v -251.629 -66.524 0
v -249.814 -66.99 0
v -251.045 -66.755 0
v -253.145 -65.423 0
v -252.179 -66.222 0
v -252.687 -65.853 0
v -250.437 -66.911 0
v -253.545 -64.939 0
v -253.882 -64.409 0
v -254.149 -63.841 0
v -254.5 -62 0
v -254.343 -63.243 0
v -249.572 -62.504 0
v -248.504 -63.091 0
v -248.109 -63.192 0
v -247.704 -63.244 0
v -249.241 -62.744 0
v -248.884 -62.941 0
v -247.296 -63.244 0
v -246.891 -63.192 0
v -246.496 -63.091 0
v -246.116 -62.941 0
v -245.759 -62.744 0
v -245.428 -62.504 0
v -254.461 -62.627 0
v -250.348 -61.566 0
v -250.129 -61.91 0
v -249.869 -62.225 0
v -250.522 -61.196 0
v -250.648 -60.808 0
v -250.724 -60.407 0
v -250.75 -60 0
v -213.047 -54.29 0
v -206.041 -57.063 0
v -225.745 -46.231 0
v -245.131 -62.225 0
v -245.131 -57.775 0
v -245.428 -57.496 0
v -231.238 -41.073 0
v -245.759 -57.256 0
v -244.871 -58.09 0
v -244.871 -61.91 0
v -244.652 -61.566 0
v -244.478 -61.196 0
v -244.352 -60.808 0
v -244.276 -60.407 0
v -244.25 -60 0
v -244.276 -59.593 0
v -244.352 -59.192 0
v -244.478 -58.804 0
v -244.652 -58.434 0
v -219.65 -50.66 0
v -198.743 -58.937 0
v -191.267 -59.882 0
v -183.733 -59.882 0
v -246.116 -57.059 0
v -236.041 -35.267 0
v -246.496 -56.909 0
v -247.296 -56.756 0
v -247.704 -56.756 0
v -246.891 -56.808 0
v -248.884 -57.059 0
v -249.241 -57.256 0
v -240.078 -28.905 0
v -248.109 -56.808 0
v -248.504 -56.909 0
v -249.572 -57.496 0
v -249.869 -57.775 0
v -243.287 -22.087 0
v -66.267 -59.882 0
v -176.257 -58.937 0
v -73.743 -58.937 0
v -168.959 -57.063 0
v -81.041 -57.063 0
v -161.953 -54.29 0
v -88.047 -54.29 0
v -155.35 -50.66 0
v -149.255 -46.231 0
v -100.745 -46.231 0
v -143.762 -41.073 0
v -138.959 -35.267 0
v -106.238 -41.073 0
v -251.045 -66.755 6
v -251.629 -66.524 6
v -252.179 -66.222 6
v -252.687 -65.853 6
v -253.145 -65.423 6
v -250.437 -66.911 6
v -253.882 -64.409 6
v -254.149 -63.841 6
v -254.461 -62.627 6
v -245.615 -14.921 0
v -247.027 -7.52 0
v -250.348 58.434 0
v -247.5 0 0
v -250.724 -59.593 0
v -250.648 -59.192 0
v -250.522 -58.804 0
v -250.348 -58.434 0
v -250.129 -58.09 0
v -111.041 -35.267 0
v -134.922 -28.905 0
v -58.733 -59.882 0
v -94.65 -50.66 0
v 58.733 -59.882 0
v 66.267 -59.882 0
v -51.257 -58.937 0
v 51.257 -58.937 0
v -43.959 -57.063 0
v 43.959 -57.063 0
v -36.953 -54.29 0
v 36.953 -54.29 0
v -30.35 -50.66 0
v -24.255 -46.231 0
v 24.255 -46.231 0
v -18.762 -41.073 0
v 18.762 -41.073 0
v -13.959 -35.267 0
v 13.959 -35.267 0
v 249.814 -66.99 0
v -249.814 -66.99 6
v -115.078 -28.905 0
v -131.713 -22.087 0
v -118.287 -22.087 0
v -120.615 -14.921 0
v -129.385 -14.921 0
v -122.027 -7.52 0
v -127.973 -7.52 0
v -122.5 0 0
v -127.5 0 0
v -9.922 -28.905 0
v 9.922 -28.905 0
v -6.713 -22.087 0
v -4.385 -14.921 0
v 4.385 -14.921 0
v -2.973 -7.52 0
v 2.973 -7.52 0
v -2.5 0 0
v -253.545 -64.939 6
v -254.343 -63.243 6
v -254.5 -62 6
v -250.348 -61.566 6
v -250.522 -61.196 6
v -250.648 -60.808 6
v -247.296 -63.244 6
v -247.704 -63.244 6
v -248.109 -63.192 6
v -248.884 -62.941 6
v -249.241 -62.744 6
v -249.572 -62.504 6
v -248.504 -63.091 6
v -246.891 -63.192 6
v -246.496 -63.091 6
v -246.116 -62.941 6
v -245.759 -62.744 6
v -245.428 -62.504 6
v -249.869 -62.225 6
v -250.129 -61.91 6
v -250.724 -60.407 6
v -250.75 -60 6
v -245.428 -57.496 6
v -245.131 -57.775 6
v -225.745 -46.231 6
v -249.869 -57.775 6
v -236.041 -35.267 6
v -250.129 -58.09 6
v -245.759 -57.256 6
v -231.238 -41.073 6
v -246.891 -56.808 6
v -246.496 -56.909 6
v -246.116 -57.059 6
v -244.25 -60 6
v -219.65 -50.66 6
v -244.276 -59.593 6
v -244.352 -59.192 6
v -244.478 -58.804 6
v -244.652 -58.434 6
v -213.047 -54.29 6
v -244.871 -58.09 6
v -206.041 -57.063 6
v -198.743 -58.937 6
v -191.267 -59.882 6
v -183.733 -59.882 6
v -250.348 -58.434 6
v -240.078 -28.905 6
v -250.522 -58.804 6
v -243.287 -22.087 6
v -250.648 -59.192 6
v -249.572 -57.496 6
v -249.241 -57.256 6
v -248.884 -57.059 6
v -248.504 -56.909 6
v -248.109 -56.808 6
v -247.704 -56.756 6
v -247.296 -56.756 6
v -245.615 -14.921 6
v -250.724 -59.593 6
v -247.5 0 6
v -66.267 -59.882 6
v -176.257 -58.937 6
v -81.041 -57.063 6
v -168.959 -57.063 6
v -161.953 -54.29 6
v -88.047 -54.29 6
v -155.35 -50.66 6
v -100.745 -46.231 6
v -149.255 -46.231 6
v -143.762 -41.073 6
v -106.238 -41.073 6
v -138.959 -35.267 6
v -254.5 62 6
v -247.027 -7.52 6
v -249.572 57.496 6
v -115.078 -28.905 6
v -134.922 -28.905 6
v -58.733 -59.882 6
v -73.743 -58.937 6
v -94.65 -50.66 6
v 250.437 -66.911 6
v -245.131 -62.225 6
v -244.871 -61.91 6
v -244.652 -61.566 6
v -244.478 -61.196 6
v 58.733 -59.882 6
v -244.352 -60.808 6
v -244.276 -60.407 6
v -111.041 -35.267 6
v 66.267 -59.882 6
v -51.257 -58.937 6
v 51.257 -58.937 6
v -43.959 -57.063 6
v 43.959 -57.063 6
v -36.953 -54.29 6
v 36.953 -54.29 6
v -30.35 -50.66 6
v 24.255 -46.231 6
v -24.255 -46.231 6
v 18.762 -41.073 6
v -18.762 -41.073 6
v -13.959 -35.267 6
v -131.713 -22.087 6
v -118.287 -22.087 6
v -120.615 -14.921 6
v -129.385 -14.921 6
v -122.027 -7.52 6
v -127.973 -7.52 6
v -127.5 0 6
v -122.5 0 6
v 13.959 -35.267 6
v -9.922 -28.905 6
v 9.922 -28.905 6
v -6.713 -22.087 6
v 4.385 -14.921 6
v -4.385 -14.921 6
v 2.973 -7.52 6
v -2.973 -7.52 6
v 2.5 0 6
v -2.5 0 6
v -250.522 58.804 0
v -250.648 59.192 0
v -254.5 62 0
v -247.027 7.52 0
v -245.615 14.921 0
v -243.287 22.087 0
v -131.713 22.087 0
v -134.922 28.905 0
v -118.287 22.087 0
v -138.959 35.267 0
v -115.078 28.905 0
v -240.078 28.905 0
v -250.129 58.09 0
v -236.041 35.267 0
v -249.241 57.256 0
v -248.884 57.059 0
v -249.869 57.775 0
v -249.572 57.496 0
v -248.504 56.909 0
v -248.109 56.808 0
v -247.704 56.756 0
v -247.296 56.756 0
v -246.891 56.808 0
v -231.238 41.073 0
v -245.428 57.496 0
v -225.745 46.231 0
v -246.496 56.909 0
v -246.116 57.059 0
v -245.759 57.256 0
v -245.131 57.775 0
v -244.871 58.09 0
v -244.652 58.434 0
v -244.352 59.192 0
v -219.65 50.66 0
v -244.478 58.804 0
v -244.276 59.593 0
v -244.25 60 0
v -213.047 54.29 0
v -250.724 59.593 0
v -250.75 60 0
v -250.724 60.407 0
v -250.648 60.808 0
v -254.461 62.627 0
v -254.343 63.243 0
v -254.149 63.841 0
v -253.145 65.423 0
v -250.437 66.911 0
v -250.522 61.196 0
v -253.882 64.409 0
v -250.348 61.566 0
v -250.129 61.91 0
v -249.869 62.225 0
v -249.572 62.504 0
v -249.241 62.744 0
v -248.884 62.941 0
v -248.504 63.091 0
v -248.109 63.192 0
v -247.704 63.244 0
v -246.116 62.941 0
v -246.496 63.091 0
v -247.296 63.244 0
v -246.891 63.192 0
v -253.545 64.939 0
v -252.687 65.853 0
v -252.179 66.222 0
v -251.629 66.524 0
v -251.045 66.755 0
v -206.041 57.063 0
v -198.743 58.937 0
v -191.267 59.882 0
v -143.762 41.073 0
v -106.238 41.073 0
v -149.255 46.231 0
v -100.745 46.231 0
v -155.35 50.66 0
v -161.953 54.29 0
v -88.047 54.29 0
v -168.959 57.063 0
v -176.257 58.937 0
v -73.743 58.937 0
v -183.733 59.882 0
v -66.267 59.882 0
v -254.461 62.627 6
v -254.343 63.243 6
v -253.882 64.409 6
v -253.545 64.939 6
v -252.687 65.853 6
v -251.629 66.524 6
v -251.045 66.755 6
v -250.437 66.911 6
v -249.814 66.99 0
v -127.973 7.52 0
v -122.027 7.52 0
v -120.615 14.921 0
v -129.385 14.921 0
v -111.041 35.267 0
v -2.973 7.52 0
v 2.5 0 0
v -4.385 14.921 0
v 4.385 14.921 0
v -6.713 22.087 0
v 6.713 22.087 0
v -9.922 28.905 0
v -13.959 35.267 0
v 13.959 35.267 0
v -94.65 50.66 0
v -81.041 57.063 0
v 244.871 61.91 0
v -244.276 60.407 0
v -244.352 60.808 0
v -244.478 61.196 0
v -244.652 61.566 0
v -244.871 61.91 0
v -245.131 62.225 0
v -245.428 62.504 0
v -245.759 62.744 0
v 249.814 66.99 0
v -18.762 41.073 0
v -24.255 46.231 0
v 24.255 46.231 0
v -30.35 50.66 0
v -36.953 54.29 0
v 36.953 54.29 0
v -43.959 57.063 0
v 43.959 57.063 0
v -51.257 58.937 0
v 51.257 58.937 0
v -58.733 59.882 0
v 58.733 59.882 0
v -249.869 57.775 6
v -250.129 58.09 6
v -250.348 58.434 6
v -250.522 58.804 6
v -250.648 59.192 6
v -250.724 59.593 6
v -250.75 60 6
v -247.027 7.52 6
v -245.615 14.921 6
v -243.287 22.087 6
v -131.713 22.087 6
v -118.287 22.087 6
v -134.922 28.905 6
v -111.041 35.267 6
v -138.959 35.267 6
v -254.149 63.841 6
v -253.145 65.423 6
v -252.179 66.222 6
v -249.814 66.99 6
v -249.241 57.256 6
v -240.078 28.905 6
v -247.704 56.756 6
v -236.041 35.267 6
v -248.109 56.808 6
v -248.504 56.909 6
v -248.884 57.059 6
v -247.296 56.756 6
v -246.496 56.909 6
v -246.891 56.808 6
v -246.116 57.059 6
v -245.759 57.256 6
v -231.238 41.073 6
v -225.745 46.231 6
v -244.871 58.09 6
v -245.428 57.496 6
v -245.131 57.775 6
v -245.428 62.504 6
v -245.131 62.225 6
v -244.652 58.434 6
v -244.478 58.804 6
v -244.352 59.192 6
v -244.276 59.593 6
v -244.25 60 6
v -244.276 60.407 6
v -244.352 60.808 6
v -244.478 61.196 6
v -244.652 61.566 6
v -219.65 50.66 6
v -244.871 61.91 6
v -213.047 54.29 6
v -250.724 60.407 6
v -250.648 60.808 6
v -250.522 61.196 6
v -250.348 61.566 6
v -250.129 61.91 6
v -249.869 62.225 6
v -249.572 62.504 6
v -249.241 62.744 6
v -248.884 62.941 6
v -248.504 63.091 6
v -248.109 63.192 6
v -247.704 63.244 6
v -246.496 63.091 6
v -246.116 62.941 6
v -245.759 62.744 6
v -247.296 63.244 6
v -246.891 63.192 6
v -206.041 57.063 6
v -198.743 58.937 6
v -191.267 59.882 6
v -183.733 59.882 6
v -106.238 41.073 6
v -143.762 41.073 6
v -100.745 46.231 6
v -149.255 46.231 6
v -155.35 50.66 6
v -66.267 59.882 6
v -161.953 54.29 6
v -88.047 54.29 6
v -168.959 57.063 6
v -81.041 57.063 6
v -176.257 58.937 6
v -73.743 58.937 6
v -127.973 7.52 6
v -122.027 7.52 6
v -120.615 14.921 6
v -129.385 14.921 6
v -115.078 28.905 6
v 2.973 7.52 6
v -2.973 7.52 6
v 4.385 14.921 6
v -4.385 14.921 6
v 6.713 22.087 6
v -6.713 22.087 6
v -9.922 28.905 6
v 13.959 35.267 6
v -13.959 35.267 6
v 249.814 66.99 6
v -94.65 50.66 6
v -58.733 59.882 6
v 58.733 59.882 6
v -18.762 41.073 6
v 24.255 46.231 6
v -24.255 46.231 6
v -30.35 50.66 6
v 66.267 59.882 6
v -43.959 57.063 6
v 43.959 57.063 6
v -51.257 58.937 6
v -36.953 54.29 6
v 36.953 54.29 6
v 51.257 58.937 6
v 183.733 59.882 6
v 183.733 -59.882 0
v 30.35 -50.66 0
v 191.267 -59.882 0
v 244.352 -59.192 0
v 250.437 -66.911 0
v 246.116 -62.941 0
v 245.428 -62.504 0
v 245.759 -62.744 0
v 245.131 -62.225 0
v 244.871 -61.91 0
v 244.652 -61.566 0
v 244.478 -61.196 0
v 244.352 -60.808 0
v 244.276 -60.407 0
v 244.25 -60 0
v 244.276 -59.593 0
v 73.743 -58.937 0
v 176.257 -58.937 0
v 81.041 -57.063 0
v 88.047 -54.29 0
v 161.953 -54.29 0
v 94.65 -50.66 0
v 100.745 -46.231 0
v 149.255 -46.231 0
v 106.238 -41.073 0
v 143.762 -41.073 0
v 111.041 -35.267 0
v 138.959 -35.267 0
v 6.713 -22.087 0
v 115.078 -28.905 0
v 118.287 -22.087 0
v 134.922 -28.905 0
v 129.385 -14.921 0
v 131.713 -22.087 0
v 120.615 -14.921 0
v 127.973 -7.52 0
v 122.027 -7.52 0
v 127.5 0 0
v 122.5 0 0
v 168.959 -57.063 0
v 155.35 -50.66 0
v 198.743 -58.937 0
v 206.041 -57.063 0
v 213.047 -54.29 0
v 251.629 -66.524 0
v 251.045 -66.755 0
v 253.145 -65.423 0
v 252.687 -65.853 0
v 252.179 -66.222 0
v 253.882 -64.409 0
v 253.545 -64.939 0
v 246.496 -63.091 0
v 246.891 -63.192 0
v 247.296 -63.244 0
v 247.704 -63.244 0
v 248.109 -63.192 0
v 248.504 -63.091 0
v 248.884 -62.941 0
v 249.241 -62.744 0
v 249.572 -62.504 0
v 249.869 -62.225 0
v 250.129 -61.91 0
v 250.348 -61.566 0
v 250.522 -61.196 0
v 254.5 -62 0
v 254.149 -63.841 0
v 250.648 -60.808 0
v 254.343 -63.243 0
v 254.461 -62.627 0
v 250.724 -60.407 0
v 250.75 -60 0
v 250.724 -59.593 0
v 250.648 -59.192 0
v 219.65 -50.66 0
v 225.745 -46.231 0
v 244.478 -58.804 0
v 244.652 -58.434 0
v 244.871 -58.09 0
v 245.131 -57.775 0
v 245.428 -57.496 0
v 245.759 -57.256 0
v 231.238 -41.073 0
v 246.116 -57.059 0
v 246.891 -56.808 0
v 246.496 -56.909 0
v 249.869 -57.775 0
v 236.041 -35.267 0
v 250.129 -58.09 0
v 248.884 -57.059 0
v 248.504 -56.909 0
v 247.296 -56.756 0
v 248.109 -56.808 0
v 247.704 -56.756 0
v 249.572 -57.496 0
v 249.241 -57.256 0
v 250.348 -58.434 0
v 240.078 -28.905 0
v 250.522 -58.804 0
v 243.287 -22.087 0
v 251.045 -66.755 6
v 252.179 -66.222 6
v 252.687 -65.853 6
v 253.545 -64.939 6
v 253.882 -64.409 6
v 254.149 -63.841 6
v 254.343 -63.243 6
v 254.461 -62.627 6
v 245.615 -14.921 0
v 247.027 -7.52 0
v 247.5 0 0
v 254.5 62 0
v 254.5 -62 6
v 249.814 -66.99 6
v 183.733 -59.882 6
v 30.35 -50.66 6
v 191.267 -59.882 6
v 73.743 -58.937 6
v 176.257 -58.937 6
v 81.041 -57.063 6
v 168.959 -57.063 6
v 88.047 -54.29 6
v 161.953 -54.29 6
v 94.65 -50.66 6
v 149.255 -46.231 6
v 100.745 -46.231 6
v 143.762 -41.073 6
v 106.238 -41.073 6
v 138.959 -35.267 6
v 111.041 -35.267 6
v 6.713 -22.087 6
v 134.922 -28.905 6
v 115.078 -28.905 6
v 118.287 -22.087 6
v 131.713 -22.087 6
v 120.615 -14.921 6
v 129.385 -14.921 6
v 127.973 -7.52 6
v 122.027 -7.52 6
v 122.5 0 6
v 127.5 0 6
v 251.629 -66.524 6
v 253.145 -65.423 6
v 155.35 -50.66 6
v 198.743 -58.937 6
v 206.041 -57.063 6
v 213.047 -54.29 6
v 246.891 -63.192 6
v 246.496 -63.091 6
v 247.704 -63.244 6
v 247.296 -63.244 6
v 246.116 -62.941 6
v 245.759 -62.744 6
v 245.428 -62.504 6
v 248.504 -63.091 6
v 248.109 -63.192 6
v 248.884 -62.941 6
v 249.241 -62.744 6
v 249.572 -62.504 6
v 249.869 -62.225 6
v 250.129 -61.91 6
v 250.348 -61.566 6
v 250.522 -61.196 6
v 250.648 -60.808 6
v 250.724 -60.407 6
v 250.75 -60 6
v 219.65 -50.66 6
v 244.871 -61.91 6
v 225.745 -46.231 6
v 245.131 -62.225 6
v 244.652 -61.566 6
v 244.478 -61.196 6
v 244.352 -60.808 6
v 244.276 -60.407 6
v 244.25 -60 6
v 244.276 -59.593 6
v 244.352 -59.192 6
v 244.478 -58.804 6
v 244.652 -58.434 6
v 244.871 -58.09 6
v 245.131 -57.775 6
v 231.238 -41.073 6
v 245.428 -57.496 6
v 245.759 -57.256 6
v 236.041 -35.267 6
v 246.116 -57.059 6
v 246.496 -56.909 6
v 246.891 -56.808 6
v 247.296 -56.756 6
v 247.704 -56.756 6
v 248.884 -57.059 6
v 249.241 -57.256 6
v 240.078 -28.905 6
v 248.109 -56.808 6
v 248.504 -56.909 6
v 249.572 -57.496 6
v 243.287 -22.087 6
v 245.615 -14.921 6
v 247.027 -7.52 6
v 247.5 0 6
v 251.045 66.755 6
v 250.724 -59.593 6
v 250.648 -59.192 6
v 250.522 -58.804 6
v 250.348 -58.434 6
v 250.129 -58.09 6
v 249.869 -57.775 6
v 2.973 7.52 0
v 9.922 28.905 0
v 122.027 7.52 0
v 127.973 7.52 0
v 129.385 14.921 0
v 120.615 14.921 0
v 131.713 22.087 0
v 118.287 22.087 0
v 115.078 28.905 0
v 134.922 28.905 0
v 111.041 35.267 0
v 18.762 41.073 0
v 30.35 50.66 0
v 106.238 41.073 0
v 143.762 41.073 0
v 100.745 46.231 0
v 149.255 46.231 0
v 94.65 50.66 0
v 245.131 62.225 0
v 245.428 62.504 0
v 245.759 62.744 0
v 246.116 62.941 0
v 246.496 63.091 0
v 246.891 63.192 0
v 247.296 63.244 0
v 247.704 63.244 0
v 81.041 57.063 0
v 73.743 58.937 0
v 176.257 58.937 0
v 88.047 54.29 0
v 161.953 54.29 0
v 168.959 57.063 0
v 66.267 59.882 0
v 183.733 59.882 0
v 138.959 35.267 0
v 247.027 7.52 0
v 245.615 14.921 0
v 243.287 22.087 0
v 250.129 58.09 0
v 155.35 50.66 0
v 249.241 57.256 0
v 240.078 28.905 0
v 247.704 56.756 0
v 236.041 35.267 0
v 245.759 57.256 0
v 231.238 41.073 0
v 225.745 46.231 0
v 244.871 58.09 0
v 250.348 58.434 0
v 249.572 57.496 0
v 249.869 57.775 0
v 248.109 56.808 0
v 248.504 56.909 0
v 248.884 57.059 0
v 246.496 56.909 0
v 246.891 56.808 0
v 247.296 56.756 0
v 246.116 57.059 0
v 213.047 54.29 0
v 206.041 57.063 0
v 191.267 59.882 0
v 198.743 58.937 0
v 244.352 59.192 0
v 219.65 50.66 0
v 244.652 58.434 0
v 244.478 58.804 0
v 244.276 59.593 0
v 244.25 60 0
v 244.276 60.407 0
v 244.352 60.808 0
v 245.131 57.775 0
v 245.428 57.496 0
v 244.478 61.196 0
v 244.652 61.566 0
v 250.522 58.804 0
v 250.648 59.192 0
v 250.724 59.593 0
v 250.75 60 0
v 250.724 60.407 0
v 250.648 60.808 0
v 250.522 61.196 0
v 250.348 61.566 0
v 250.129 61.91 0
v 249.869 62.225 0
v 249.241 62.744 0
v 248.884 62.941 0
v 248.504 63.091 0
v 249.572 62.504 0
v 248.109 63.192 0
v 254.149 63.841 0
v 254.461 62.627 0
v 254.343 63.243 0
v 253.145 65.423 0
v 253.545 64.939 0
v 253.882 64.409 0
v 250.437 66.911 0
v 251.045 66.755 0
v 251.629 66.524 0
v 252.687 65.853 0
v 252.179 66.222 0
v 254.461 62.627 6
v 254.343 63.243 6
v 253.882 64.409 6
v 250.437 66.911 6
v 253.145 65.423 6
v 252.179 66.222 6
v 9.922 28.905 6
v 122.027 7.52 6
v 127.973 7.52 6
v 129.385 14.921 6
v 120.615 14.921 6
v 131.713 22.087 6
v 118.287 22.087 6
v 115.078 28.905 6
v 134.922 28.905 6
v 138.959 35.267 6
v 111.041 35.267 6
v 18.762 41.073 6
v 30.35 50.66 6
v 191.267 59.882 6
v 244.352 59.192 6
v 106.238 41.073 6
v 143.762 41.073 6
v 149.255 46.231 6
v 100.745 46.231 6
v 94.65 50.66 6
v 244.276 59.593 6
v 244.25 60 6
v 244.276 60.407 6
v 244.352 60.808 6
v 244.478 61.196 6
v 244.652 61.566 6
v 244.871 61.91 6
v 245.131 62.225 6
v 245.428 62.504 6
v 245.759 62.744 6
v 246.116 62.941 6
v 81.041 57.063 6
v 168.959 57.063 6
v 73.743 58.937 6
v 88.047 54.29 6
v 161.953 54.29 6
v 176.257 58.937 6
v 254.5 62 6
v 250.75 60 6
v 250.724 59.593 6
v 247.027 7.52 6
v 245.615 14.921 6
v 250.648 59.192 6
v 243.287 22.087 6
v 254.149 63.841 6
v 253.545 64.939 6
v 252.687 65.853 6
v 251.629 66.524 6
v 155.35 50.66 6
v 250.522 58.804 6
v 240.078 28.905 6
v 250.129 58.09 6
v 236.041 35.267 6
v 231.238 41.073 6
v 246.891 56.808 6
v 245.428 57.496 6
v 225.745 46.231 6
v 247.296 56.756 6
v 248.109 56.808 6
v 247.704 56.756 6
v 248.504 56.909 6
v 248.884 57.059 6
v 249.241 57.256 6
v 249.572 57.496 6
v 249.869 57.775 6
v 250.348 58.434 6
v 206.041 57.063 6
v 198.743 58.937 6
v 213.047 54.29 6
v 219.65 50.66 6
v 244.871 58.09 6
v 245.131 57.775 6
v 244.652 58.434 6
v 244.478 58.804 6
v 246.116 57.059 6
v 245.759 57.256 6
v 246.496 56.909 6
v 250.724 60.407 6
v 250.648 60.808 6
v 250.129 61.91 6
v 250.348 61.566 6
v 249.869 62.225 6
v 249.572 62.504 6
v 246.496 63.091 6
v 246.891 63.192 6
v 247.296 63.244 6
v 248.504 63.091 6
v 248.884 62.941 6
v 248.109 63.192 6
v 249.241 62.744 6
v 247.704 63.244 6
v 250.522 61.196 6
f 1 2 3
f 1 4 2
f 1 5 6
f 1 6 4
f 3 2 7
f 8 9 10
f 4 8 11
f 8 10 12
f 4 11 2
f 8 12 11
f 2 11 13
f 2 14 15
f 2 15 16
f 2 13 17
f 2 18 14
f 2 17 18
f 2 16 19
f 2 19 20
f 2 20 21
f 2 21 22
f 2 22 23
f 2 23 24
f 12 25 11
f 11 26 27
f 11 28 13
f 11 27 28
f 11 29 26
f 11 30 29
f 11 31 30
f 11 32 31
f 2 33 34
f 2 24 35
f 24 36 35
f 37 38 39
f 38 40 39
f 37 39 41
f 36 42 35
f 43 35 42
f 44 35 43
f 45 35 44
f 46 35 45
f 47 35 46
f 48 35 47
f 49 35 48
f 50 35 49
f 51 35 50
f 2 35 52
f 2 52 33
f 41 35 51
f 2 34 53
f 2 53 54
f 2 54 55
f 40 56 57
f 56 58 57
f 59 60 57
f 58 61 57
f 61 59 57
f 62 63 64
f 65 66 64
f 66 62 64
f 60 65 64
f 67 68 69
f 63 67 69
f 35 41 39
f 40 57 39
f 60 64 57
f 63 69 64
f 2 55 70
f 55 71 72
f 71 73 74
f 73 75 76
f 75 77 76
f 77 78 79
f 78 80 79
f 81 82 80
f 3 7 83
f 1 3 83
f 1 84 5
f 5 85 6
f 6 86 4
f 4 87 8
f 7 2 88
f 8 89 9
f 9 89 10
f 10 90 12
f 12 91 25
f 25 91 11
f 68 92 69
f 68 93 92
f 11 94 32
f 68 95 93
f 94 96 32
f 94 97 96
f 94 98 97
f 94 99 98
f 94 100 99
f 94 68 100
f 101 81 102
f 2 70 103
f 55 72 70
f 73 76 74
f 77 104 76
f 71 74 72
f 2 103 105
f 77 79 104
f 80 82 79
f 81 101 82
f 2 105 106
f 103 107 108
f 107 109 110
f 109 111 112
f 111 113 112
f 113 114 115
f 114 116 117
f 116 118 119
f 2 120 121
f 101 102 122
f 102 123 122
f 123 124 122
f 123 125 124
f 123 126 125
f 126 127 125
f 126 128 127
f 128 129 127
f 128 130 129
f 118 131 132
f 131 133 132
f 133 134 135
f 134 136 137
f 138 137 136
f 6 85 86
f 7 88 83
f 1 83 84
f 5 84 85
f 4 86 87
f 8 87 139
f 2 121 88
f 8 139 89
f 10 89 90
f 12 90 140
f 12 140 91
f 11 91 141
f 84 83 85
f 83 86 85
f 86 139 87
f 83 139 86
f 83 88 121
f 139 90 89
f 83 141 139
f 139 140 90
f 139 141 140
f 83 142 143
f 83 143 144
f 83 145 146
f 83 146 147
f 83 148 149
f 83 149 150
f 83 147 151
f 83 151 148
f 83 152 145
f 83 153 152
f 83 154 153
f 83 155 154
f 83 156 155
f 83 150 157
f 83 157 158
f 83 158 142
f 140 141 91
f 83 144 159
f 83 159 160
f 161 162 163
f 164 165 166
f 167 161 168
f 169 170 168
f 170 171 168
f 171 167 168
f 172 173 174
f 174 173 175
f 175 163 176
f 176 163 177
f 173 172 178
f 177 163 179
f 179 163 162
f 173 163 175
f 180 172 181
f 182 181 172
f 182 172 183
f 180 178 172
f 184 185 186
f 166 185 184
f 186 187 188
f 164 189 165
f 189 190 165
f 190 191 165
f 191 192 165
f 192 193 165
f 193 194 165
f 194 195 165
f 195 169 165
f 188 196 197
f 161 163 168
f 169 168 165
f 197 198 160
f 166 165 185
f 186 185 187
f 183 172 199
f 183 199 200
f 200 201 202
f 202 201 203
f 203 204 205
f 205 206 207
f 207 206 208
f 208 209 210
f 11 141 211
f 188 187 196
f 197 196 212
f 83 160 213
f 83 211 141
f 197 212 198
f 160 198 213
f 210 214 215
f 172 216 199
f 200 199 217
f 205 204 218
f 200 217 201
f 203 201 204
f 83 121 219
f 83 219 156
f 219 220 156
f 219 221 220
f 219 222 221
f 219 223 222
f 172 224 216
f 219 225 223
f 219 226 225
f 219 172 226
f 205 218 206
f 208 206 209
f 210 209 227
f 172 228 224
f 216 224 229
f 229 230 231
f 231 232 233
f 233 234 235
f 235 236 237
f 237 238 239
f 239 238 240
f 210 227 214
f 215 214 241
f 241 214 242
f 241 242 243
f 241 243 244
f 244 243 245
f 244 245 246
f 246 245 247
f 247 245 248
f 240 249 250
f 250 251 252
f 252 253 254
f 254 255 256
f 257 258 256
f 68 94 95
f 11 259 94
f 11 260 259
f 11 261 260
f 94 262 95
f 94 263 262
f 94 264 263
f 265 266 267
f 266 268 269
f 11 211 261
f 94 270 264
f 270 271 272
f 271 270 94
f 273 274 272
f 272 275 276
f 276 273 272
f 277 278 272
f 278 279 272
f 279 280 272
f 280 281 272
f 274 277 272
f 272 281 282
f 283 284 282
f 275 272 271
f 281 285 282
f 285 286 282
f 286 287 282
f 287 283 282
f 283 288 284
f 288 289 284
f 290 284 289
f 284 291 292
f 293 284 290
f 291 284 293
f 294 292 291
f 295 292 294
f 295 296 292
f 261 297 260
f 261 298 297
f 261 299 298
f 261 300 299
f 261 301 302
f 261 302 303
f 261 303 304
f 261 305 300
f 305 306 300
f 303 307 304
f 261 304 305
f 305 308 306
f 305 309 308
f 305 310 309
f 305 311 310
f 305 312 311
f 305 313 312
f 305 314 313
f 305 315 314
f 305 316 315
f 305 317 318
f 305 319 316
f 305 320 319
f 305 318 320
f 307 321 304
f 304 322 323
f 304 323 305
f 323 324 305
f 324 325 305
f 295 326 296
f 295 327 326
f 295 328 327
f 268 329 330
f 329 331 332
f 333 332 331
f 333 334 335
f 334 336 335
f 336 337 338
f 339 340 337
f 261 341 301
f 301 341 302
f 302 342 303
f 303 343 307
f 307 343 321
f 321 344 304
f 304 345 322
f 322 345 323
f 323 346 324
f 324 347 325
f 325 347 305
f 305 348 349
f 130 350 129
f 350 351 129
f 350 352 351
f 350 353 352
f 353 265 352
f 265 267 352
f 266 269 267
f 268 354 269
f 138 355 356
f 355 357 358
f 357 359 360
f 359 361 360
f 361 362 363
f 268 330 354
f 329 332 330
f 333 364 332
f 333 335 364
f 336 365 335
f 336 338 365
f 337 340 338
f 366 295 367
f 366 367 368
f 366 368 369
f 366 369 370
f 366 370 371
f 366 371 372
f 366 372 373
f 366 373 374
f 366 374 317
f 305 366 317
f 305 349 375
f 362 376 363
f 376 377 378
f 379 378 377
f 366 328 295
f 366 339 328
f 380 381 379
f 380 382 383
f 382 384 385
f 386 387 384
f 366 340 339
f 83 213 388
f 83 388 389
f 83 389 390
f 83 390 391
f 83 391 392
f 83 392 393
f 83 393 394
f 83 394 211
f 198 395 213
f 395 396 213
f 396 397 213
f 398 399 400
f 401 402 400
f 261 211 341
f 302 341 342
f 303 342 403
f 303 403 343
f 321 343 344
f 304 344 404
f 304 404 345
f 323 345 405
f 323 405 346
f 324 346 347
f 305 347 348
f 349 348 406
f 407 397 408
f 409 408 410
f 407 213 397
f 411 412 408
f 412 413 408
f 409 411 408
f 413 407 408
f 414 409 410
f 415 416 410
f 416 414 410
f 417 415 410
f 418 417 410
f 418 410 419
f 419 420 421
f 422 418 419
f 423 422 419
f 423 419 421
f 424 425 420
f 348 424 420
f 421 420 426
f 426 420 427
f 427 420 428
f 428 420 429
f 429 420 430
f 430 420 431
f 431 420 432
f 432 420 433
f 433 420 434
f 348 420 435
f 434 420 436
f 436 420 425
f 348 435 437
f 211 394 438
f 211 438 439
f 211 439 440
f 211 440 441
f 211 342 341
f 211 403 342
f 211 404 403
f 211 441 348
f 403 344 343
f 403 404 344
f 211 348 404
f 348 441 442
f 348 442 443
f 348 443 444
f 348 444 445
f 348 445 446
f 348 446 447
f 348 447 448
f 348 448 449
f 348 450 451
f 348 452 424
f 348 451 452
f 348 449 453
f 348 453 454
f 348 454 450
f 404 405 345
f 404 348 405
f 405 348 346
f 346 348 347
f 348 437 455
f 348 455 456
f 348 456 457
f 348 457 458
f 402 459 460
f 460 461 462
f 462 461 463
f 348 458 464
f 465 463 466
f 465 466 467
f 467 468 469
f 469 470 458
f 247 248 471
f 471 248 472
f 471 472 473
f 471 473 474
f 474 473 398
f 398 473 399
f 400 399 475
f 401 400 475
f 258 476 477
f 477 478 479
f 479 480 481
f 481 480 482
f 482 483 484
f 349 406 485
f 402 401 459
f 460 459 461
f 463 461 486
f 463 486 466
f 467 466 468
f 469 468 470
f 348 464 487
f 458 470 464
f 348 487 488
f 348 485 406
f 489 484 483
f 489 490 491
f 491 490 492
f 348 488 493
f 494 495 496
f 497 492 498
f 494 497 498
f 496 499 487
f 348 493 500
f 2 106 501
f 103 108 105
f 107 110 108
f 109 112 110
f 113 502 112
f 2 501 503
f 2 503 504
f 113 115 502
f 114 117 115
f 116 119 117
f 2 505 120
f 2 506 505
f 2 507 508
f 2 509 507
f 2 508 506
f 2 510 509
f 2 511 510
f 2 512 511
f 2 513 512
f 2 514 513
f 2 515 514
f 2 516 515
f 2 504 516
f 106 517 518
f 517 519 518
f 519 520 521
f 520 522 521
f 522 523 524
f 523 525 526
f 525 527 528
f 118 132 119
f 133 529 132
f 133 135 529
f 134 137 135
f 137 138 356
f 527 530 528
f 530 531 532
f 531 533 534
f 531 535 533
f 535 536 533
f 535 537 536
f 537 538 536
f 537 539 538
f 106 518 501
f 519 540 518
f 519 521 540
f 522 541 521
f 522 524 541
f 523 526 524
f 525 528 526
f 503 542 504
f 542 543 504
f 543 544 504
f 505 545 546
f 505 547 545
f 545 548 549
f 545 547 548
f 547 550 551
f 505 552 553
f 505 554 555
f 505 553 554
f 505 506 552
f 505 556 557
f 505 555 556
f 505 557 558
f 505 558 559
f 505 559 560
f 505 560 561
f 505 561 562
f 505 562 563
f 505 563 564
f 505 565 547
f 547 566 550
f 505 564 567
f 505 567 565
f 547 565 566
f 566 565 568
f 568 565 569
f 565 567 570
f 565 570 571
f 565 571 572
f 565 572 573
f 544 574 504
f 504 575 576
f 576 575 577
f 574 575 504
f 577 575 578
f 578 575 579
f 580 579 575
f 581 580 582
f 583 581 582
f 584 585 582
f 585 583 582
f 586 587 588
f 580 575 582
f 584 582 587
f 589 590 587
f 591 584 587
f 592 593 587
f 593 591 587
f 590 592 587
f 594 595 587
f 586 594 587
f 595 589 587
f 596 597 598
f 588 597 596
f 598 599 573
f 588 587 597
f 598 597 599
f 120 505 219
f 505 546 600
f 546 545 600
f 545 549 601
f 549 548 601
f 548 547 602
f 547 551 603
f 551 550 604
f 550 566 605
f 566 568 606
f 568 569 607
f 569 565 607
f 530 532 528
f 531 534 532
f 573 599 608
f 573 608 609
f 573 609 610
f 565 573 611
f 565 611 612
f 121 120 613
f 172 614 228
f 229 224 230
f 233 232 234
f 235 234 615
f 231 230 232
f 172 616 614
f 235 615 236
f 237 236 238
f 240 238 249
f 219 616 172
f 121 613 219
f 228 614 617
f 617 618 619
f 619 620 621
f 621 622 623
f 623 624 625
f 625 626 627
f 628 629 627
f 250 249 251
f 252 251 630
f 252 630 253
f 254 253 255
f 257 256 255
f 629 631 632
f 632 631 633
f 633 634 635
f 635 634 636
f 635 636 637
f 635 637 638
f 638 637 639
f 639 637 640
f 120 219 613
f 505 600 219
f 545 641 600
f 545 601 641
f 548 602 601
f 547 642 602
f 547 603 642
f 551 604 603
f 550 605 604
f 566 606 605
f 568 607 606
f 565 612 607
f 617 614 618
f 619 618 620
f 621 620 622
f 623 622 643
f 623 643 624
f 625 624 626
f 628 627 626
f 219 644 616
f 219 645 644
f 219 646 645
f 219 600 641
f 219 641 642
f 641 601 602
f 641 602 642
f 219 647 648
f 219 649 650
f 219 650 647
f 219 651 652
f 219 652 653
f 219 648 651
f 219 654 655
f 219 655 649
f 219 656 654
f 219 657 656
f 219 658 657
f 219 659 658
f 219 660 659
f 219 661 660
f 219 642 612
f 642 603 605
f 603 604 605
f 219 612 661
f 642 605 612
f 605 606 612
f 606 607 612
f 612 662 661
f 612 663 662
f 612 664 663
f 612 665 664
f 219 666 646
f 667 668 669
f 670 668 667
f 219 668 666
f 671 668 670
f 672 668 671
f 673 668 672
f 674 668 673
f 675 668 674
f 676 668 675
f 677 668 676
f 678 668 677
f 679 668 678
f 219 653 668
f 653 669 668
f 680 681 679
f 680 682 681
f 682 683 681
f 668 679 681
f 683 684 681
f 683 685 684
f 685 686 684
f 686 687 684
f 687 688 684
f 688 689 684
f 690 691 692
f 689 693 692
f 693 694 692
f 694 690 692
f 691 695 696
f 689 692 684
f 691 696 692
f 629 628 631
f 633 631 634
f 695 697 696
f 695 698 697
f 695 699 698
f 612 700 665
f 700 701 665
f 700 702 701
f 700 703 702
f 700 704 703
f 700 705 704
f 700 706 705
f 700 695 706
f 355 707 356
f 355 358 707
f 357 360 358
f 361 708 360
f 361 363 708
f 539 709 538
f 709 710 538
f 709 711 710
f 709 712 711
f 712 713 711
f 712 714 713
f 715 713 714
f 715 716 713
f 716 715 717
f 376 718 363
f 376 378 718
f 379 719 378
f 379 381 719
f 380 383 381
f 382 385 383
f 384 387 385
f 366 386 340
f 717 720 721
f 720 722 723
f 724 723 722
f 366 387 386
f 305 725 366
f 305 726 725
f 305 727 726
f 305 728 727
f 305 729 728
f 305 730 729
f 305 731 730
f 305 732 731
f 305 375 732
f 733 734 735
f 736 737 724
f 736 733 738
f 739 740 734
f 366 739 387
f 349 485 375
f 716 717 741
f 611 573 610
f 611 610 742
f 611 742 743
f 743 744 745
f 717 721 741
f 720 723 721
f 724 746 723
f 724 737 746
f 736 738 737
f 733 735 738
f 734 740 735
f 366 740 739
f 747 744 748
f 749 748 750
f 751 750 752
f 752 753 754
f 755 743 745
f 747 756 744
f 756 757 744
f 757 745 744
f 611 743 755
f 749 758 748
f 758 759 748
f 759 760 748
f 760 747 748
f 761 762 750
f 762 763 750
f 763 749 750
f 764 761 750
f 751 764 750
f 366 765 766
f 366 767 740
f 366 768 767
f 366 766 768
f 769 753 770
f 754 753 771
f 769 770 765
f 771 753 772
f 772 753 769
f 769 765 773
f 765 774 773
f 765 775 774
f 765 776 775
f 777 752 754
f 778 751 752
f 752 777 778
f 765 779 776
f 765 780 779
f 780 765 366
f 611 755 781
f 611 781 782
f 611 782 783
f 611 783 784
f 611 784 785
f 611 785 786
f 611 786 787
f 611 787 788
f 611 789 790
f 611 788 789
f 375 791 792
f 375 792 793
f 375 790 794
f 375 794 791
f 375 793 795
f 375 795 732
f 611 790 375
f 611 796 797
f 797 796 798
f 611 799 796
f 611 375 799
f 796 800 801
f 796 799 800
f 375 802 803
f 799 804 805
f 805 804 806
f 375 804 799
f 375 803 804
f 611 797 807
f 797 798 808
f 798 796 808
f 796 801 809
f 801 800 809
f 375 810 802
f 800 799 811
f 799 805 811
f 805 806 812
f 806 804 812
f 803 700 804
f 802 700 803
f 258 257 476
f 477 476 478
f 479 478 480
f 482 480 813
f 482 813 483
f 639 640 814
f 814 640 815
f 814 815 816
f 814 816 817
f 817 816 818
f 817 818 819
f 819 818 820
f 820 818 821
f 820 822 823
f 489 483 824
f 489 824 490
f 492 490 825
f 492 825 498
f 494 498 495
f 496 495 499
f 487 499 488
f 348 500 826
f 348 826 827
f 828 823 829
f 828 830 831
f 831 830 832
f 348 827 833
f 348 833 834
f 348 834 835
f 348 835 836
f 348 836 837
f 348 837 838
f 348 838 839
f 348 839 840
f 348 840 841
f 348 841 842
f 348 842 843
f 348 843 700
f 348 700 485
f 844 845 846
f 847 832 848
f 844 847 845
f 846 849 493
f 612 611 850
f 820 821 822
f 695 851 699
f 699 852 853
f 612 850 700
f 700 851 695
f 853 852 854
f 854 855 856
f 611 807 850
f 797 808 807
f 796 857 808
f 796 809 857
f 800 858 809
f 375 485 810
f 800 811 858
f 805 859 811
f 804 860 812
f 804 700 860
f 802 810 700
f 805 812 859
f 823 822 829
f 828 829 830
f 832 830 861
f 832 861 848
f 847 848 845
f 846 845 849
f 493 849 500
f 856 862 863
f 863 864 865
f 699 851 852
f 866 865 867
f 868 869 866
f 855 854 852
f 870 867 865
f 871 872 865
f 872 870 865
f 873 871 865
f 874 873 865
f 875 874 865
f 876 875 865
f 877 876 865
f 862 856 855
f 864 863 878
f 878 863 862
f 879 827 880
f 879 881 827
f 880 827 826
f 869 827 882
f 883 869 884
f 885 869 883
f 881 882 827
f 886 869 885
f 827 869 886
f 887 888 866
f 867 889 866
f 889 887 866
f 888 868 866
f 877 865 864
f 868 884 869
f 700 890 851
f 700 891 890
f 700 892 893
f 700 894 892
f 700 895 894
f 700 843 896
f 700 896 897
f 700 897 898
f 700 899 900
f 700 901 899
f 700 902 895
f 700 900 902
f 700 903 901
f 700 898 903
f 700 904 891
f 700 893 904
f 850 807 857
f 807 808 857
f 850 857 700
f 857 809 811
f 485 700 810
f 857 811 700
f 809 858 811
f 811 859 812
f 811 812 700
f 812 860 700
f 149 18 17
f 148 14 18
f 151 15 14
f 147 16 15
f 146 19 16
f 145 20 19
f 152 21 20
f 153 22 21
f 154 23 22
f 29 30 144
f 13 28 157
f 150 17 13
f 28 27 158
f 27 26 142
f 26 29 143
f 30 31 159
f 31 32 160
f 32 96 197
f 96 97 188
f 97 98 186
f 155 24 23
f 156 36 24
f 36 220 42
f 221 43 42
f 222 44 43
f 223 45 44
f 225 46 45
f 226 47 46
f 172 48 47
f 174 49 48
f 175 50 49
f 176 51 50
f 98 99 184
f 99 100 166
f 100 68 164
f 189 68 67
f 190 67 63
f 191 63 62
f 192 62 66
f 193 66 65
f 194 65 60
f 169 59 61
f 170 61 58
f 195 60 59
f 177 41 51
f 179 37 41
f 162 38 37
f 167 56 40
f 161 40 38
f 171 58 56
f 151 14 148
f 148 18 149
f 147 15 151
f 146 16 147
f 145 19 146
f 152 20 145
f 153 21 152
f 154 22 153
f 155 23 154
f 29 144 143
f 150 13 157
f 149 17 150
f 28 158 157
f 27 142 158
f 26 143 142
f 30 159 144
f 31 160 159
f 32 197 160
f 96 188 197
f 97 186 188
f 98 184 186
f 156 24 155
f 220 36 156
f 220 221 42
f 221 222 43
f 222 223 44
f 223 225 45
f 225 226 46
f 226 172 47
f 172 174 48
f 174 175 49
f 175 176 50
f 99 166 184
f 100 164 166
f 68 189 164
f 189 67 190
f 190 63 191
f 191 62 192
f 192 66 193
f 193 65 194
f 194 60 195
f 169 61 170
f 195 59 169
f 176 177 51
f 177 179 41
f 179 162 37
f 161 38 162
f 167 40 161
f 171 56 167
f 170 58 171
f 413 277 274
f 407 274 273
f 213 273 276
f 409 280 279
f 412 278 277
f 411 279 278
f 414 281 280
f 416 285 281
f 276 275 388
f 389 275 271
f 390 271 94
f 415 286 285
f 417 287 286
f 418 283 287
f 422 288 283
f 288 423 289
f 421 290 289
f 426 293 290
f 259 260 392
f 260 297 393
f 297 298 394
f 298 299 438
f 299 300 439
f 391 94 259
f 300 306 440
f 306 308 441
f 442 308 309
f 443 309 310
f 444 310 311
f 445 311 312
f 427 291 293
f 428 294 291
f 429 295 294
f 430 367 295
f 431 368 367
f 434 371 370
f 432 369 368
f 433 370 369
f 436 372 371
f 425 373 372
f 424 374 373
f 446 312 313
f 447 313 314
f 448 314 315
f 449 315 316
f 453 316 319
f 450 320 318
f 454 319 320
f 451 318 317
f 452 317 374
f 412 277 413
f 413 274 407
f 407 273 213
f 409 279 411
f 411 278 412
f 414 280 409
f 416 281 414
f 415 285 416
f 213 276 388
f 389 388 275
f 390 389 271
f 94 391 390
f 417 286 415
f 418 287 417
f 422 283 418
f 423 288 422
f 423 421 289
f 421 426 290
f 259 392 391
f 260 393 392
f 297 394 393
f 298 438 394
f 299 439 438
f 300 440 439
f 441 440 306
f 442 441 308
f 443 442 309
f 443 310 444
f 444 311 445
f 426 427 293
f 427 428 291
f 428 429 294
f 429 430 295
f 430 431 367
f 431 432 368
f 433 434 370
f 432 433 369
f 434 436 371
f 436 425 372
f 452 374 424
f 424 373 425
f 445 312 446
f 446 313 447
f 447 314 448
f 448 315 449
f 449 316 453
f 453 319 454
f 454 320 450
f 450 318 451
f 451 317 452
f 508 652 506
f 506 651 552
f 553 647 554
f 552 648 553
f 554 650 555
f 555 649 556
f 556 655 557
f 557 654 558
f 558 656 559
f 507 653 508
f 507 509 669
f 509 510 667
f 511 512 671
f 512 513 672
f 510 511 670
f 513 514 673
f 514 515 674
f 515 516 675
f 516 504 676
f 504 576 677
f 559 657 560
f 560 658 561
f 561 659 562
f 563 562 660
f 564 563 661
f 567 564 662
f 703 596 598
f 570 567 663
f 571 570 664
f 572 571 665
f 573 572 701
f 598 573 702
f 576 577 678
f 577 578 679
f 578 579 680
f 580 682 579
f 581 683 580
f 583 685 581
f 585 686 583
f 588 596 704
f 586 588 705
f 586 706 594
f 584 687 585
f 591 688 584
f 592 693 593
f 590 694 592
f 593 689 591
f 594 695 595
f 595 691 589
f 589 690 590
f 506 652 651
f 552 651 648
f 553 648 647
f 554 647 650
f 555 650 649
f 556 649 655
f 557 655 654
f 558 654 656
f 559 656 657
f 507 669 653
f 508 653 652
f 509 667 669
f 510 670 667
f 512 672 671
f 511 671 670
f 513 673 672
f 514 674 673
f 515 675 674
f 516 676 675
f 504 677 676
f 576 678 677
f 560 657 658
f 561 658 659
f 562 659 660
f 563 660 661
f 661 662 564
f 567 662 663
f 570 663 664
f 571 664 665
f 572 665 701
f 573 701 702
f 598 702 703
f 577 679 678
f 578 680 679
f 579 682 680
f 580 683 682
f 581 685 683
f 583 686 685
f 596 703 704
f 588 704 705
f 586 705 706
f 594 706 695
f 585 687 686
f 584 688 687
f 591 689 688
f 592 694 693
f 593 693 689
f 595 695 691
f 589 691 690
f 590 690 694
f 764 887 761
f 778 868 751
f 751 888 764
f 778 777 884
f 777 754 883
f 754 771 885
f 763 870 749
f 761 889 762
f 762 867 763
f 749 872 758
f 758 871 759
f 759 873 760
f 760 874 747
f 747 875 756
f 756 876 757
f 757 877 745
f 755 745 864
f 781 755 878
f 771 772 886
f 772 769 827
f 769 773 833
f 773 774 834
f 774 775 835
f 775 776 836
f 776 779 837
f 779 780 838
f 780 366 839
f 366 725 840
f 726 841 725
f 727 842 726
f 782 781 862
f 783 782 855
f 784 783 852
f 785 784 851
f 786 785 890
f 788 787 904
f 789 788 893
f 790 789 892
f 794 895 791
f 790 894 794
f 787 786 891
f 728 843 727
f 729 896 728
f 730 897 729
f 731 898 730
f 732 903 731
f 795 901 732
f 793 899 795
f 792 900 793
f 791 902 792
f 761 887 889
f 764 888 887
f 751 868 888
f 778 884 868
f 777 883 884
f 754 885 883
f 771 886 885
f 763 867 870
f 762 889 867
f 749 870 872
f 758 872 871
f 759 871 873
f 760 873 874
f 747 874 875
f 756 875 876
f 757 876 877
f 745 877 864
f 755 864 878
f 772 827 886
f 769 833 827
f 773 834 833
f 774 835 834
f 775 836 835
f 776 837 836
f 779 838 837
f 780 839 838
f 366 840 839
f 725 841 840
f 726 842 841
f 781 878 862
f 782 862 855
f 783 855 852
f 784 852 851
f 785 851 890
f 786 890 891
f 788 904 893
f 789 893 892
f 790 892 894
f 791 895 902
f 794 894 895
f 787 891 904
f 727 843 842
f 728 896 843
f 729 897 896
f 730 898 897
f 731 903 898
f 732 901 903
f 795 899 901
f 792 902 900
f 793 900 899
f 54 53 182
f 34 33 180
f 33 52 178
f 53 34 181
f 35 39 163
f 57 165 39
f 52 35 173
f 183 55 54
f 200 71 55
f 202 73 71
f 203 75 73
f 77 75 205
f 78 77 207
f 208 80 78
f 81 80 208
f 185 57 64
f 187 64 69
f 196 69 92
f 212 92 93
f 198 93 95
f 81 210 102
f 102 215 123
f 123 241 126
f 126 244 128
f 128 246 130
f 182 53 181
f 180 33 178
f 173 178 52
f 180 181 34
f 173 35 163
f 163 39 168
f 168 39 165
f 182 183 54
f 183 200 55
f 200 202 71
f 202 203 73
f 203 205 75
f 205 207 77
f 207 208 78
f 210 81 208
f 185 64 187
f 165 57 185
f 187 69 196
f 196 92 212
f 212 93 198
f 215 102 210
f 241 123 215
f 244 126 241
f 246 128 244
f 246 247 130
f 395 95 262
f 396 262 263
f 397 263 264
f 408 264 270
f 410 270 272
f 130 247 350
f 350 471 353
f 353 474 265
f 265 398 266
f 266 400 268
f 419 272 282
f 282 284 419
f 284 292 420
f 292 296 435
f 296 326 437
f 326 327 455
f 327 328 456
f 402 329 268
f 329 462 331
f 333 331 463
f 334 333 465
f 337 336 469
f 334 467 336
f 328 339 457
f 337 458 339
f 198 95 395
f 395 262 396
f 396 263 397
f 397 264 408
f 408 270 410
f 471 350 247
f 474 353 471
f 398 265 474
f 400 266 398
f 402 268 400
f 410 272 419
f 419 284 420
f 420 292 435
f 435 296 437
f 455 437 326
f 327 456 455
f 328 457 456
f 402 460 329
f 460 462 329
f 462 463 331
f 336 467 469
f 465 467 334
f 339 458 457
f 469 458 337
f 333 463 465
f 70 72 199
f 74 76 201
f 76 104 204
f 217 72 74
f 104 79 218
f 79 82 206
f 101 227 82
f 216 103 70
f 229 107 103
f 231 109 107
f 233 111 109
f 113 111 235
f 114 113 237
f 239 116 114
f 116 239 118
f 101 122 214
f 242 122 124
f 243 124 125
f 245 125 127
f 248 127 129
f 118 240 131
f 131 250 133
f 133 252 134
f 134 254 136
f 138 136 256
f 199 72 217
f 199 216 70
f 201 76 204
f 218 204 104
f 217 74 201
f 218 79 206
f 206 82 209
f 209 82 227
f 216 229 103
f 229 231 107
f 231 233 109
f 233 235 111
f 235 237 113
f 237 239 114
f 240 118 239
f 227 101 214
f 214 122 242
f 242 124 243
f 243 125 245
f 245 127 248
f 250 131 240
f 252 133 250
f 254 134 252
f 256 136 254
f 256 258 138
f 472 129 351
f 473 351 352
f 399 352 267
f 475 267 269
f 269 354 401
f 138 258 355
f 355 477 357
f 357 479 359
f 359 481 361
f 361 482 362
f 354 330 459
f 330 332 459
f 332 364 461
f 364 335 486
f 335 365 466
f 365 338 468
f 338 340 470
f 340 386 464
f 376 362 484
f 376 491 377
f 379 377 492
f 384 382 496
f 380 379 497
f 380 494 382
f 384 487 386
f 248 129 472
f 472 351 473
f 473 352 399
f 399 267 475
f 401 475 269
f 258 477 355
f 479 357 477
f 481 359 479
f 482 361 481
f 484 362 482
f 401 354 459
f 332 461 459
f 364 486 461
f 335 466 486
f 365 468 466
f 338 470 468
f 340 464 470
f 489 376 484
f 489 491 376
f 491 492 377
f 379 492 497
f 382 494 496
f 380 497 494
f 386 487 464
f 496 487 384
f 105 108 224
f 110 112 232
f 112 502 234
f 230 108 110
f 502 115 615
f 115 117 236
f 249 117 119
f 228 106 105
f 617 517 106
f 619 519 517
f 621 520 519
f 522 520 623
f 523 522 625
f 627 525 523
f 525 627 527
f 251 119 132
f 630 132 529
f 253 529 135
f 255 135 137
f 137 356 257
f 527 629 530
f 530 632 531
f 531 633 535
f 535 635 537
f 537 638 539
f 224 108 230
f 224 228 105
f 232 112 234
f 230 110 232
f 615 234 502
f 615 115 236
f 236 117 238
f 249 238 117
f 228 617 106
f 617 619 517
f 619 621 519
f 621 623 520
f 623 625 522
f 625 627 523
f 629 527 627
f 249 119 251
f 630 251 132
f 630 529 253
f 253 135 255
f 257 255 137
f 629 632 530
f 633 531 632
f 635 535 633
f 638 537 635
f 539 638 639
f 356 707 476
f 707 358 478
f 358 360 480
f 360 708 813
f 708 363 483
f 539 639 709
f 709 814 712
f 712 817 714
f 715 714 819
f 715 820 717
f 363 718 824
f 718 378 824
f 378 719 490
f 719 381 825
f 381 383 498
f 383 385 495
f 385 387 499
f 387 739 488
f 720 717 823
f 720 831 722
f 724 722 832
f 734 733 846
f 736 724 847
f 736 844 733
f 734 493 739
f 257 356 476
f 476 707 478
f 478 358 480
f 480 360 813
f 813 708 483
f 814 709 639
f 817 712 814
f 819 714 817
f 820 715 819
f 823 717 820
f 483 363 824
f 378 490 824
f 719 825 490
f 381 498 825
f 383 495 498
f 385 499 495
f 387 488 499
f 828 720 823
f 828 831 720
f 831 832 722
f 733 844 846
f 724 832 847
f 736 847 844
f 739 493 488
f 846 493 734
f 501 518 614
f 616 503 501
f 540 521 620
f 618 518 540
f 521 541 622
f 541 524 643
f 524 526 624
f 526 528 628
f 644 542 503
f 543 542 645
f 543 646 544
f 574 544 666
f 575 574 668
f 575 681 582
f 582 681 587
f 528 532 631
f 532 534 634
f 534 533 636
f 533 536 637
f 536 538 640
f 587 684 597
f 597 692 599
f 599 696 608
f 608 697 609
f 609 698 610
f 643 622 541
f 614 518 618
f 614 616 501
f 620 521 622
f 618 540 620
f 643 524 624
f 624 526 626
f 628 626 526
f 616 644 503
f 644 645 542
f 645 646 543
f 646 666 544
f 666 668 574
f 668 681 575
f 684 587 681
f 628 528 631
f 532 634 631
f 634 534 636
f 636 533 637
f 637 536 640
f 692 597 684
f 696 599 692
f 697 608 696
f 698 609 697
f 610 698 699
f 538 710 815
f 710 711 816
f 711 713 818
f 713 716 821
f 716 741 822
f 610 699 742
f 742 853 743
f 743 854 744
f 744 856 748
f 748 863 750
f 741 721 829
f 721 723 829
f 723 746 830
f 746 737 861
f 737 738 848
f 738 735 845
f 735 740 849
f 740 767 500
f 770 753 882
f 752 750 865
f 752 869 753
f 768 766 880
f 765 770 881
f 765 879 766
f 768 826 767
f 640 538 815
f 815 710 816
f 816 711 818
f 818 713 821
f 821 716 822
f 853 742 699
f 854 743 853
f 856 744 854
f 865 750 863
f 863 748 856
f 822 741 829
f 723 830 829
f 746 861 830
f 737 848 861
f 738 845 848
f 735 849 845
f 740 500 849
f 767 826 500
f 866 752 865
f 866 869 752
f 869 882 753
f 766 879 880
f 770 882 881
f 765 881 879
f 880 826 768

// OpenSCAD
$fn = 50;

difference() {
	union() {
		hull() {
			translate(v = [-249.5, 62.0, 0]) {
				cylinder(h = 6, r = 5);
			}
			translate(v = [249.5, 62.0, 0]) {
				cylinder(h = 6, r = 5);
			}
			translate(v = [-249.5, -62.0, 0]) {
				cylinder(h = 6, r = 5);
			}
			translate(v = [249.5, -62.0, 0]) {
				cylinder(h = 6, r = 5);
			}
		}
	}
	union() {
		translate(v = [-247.5, -60.0, -100.0]) {
			cylinder(h = 200, r = 3.25);
		}
		translate(v = [-247.5, 60.0, -100.0]) {
			cylinder(h = 200, r = 3.25);
		}
		translate(v = [247.5, -60.0, -100.0]) {
			cylinder(h = 200, r = 3.25);
		}
		translate(v = [247.5, 60.0, -100.0]) {
			cylinder(h = 200, r = 3.25);
		}
		translate(v = [-247.5, -60.0, -100.0]) {
			cylinder(h = 200, r = 1.8);
		}
		translate(v = [-247.5, 60.0, -100.0]) {
			cylinder(h = 200, r = 1.8);
		}
		translate(v = [247.5, -60.0, -100.0]) {
			cylinder(h = 200, r = 1.8);
		}
		translate(v = [247.5, 60.0, -100.0]) {
			cylinder(h = 200, r = 1.8);
		}
		translate(v = [-187.5, 0, 0.0]) {
			cylinder(h = 6, r = 60.0);
		}
		translate(v = [-62.5, 0, 0.0]) {
			cylinder(h = 6, r = 60.0);
		}
		translate(v = [62.5, 0, 0.0]) {
			cylinder(h = 6, r = 60.0);
		}
		translate(v = [187.5, 0, 0.0]) {
			cylinder(h = 6, r = 60.0);
		}
	}
}
